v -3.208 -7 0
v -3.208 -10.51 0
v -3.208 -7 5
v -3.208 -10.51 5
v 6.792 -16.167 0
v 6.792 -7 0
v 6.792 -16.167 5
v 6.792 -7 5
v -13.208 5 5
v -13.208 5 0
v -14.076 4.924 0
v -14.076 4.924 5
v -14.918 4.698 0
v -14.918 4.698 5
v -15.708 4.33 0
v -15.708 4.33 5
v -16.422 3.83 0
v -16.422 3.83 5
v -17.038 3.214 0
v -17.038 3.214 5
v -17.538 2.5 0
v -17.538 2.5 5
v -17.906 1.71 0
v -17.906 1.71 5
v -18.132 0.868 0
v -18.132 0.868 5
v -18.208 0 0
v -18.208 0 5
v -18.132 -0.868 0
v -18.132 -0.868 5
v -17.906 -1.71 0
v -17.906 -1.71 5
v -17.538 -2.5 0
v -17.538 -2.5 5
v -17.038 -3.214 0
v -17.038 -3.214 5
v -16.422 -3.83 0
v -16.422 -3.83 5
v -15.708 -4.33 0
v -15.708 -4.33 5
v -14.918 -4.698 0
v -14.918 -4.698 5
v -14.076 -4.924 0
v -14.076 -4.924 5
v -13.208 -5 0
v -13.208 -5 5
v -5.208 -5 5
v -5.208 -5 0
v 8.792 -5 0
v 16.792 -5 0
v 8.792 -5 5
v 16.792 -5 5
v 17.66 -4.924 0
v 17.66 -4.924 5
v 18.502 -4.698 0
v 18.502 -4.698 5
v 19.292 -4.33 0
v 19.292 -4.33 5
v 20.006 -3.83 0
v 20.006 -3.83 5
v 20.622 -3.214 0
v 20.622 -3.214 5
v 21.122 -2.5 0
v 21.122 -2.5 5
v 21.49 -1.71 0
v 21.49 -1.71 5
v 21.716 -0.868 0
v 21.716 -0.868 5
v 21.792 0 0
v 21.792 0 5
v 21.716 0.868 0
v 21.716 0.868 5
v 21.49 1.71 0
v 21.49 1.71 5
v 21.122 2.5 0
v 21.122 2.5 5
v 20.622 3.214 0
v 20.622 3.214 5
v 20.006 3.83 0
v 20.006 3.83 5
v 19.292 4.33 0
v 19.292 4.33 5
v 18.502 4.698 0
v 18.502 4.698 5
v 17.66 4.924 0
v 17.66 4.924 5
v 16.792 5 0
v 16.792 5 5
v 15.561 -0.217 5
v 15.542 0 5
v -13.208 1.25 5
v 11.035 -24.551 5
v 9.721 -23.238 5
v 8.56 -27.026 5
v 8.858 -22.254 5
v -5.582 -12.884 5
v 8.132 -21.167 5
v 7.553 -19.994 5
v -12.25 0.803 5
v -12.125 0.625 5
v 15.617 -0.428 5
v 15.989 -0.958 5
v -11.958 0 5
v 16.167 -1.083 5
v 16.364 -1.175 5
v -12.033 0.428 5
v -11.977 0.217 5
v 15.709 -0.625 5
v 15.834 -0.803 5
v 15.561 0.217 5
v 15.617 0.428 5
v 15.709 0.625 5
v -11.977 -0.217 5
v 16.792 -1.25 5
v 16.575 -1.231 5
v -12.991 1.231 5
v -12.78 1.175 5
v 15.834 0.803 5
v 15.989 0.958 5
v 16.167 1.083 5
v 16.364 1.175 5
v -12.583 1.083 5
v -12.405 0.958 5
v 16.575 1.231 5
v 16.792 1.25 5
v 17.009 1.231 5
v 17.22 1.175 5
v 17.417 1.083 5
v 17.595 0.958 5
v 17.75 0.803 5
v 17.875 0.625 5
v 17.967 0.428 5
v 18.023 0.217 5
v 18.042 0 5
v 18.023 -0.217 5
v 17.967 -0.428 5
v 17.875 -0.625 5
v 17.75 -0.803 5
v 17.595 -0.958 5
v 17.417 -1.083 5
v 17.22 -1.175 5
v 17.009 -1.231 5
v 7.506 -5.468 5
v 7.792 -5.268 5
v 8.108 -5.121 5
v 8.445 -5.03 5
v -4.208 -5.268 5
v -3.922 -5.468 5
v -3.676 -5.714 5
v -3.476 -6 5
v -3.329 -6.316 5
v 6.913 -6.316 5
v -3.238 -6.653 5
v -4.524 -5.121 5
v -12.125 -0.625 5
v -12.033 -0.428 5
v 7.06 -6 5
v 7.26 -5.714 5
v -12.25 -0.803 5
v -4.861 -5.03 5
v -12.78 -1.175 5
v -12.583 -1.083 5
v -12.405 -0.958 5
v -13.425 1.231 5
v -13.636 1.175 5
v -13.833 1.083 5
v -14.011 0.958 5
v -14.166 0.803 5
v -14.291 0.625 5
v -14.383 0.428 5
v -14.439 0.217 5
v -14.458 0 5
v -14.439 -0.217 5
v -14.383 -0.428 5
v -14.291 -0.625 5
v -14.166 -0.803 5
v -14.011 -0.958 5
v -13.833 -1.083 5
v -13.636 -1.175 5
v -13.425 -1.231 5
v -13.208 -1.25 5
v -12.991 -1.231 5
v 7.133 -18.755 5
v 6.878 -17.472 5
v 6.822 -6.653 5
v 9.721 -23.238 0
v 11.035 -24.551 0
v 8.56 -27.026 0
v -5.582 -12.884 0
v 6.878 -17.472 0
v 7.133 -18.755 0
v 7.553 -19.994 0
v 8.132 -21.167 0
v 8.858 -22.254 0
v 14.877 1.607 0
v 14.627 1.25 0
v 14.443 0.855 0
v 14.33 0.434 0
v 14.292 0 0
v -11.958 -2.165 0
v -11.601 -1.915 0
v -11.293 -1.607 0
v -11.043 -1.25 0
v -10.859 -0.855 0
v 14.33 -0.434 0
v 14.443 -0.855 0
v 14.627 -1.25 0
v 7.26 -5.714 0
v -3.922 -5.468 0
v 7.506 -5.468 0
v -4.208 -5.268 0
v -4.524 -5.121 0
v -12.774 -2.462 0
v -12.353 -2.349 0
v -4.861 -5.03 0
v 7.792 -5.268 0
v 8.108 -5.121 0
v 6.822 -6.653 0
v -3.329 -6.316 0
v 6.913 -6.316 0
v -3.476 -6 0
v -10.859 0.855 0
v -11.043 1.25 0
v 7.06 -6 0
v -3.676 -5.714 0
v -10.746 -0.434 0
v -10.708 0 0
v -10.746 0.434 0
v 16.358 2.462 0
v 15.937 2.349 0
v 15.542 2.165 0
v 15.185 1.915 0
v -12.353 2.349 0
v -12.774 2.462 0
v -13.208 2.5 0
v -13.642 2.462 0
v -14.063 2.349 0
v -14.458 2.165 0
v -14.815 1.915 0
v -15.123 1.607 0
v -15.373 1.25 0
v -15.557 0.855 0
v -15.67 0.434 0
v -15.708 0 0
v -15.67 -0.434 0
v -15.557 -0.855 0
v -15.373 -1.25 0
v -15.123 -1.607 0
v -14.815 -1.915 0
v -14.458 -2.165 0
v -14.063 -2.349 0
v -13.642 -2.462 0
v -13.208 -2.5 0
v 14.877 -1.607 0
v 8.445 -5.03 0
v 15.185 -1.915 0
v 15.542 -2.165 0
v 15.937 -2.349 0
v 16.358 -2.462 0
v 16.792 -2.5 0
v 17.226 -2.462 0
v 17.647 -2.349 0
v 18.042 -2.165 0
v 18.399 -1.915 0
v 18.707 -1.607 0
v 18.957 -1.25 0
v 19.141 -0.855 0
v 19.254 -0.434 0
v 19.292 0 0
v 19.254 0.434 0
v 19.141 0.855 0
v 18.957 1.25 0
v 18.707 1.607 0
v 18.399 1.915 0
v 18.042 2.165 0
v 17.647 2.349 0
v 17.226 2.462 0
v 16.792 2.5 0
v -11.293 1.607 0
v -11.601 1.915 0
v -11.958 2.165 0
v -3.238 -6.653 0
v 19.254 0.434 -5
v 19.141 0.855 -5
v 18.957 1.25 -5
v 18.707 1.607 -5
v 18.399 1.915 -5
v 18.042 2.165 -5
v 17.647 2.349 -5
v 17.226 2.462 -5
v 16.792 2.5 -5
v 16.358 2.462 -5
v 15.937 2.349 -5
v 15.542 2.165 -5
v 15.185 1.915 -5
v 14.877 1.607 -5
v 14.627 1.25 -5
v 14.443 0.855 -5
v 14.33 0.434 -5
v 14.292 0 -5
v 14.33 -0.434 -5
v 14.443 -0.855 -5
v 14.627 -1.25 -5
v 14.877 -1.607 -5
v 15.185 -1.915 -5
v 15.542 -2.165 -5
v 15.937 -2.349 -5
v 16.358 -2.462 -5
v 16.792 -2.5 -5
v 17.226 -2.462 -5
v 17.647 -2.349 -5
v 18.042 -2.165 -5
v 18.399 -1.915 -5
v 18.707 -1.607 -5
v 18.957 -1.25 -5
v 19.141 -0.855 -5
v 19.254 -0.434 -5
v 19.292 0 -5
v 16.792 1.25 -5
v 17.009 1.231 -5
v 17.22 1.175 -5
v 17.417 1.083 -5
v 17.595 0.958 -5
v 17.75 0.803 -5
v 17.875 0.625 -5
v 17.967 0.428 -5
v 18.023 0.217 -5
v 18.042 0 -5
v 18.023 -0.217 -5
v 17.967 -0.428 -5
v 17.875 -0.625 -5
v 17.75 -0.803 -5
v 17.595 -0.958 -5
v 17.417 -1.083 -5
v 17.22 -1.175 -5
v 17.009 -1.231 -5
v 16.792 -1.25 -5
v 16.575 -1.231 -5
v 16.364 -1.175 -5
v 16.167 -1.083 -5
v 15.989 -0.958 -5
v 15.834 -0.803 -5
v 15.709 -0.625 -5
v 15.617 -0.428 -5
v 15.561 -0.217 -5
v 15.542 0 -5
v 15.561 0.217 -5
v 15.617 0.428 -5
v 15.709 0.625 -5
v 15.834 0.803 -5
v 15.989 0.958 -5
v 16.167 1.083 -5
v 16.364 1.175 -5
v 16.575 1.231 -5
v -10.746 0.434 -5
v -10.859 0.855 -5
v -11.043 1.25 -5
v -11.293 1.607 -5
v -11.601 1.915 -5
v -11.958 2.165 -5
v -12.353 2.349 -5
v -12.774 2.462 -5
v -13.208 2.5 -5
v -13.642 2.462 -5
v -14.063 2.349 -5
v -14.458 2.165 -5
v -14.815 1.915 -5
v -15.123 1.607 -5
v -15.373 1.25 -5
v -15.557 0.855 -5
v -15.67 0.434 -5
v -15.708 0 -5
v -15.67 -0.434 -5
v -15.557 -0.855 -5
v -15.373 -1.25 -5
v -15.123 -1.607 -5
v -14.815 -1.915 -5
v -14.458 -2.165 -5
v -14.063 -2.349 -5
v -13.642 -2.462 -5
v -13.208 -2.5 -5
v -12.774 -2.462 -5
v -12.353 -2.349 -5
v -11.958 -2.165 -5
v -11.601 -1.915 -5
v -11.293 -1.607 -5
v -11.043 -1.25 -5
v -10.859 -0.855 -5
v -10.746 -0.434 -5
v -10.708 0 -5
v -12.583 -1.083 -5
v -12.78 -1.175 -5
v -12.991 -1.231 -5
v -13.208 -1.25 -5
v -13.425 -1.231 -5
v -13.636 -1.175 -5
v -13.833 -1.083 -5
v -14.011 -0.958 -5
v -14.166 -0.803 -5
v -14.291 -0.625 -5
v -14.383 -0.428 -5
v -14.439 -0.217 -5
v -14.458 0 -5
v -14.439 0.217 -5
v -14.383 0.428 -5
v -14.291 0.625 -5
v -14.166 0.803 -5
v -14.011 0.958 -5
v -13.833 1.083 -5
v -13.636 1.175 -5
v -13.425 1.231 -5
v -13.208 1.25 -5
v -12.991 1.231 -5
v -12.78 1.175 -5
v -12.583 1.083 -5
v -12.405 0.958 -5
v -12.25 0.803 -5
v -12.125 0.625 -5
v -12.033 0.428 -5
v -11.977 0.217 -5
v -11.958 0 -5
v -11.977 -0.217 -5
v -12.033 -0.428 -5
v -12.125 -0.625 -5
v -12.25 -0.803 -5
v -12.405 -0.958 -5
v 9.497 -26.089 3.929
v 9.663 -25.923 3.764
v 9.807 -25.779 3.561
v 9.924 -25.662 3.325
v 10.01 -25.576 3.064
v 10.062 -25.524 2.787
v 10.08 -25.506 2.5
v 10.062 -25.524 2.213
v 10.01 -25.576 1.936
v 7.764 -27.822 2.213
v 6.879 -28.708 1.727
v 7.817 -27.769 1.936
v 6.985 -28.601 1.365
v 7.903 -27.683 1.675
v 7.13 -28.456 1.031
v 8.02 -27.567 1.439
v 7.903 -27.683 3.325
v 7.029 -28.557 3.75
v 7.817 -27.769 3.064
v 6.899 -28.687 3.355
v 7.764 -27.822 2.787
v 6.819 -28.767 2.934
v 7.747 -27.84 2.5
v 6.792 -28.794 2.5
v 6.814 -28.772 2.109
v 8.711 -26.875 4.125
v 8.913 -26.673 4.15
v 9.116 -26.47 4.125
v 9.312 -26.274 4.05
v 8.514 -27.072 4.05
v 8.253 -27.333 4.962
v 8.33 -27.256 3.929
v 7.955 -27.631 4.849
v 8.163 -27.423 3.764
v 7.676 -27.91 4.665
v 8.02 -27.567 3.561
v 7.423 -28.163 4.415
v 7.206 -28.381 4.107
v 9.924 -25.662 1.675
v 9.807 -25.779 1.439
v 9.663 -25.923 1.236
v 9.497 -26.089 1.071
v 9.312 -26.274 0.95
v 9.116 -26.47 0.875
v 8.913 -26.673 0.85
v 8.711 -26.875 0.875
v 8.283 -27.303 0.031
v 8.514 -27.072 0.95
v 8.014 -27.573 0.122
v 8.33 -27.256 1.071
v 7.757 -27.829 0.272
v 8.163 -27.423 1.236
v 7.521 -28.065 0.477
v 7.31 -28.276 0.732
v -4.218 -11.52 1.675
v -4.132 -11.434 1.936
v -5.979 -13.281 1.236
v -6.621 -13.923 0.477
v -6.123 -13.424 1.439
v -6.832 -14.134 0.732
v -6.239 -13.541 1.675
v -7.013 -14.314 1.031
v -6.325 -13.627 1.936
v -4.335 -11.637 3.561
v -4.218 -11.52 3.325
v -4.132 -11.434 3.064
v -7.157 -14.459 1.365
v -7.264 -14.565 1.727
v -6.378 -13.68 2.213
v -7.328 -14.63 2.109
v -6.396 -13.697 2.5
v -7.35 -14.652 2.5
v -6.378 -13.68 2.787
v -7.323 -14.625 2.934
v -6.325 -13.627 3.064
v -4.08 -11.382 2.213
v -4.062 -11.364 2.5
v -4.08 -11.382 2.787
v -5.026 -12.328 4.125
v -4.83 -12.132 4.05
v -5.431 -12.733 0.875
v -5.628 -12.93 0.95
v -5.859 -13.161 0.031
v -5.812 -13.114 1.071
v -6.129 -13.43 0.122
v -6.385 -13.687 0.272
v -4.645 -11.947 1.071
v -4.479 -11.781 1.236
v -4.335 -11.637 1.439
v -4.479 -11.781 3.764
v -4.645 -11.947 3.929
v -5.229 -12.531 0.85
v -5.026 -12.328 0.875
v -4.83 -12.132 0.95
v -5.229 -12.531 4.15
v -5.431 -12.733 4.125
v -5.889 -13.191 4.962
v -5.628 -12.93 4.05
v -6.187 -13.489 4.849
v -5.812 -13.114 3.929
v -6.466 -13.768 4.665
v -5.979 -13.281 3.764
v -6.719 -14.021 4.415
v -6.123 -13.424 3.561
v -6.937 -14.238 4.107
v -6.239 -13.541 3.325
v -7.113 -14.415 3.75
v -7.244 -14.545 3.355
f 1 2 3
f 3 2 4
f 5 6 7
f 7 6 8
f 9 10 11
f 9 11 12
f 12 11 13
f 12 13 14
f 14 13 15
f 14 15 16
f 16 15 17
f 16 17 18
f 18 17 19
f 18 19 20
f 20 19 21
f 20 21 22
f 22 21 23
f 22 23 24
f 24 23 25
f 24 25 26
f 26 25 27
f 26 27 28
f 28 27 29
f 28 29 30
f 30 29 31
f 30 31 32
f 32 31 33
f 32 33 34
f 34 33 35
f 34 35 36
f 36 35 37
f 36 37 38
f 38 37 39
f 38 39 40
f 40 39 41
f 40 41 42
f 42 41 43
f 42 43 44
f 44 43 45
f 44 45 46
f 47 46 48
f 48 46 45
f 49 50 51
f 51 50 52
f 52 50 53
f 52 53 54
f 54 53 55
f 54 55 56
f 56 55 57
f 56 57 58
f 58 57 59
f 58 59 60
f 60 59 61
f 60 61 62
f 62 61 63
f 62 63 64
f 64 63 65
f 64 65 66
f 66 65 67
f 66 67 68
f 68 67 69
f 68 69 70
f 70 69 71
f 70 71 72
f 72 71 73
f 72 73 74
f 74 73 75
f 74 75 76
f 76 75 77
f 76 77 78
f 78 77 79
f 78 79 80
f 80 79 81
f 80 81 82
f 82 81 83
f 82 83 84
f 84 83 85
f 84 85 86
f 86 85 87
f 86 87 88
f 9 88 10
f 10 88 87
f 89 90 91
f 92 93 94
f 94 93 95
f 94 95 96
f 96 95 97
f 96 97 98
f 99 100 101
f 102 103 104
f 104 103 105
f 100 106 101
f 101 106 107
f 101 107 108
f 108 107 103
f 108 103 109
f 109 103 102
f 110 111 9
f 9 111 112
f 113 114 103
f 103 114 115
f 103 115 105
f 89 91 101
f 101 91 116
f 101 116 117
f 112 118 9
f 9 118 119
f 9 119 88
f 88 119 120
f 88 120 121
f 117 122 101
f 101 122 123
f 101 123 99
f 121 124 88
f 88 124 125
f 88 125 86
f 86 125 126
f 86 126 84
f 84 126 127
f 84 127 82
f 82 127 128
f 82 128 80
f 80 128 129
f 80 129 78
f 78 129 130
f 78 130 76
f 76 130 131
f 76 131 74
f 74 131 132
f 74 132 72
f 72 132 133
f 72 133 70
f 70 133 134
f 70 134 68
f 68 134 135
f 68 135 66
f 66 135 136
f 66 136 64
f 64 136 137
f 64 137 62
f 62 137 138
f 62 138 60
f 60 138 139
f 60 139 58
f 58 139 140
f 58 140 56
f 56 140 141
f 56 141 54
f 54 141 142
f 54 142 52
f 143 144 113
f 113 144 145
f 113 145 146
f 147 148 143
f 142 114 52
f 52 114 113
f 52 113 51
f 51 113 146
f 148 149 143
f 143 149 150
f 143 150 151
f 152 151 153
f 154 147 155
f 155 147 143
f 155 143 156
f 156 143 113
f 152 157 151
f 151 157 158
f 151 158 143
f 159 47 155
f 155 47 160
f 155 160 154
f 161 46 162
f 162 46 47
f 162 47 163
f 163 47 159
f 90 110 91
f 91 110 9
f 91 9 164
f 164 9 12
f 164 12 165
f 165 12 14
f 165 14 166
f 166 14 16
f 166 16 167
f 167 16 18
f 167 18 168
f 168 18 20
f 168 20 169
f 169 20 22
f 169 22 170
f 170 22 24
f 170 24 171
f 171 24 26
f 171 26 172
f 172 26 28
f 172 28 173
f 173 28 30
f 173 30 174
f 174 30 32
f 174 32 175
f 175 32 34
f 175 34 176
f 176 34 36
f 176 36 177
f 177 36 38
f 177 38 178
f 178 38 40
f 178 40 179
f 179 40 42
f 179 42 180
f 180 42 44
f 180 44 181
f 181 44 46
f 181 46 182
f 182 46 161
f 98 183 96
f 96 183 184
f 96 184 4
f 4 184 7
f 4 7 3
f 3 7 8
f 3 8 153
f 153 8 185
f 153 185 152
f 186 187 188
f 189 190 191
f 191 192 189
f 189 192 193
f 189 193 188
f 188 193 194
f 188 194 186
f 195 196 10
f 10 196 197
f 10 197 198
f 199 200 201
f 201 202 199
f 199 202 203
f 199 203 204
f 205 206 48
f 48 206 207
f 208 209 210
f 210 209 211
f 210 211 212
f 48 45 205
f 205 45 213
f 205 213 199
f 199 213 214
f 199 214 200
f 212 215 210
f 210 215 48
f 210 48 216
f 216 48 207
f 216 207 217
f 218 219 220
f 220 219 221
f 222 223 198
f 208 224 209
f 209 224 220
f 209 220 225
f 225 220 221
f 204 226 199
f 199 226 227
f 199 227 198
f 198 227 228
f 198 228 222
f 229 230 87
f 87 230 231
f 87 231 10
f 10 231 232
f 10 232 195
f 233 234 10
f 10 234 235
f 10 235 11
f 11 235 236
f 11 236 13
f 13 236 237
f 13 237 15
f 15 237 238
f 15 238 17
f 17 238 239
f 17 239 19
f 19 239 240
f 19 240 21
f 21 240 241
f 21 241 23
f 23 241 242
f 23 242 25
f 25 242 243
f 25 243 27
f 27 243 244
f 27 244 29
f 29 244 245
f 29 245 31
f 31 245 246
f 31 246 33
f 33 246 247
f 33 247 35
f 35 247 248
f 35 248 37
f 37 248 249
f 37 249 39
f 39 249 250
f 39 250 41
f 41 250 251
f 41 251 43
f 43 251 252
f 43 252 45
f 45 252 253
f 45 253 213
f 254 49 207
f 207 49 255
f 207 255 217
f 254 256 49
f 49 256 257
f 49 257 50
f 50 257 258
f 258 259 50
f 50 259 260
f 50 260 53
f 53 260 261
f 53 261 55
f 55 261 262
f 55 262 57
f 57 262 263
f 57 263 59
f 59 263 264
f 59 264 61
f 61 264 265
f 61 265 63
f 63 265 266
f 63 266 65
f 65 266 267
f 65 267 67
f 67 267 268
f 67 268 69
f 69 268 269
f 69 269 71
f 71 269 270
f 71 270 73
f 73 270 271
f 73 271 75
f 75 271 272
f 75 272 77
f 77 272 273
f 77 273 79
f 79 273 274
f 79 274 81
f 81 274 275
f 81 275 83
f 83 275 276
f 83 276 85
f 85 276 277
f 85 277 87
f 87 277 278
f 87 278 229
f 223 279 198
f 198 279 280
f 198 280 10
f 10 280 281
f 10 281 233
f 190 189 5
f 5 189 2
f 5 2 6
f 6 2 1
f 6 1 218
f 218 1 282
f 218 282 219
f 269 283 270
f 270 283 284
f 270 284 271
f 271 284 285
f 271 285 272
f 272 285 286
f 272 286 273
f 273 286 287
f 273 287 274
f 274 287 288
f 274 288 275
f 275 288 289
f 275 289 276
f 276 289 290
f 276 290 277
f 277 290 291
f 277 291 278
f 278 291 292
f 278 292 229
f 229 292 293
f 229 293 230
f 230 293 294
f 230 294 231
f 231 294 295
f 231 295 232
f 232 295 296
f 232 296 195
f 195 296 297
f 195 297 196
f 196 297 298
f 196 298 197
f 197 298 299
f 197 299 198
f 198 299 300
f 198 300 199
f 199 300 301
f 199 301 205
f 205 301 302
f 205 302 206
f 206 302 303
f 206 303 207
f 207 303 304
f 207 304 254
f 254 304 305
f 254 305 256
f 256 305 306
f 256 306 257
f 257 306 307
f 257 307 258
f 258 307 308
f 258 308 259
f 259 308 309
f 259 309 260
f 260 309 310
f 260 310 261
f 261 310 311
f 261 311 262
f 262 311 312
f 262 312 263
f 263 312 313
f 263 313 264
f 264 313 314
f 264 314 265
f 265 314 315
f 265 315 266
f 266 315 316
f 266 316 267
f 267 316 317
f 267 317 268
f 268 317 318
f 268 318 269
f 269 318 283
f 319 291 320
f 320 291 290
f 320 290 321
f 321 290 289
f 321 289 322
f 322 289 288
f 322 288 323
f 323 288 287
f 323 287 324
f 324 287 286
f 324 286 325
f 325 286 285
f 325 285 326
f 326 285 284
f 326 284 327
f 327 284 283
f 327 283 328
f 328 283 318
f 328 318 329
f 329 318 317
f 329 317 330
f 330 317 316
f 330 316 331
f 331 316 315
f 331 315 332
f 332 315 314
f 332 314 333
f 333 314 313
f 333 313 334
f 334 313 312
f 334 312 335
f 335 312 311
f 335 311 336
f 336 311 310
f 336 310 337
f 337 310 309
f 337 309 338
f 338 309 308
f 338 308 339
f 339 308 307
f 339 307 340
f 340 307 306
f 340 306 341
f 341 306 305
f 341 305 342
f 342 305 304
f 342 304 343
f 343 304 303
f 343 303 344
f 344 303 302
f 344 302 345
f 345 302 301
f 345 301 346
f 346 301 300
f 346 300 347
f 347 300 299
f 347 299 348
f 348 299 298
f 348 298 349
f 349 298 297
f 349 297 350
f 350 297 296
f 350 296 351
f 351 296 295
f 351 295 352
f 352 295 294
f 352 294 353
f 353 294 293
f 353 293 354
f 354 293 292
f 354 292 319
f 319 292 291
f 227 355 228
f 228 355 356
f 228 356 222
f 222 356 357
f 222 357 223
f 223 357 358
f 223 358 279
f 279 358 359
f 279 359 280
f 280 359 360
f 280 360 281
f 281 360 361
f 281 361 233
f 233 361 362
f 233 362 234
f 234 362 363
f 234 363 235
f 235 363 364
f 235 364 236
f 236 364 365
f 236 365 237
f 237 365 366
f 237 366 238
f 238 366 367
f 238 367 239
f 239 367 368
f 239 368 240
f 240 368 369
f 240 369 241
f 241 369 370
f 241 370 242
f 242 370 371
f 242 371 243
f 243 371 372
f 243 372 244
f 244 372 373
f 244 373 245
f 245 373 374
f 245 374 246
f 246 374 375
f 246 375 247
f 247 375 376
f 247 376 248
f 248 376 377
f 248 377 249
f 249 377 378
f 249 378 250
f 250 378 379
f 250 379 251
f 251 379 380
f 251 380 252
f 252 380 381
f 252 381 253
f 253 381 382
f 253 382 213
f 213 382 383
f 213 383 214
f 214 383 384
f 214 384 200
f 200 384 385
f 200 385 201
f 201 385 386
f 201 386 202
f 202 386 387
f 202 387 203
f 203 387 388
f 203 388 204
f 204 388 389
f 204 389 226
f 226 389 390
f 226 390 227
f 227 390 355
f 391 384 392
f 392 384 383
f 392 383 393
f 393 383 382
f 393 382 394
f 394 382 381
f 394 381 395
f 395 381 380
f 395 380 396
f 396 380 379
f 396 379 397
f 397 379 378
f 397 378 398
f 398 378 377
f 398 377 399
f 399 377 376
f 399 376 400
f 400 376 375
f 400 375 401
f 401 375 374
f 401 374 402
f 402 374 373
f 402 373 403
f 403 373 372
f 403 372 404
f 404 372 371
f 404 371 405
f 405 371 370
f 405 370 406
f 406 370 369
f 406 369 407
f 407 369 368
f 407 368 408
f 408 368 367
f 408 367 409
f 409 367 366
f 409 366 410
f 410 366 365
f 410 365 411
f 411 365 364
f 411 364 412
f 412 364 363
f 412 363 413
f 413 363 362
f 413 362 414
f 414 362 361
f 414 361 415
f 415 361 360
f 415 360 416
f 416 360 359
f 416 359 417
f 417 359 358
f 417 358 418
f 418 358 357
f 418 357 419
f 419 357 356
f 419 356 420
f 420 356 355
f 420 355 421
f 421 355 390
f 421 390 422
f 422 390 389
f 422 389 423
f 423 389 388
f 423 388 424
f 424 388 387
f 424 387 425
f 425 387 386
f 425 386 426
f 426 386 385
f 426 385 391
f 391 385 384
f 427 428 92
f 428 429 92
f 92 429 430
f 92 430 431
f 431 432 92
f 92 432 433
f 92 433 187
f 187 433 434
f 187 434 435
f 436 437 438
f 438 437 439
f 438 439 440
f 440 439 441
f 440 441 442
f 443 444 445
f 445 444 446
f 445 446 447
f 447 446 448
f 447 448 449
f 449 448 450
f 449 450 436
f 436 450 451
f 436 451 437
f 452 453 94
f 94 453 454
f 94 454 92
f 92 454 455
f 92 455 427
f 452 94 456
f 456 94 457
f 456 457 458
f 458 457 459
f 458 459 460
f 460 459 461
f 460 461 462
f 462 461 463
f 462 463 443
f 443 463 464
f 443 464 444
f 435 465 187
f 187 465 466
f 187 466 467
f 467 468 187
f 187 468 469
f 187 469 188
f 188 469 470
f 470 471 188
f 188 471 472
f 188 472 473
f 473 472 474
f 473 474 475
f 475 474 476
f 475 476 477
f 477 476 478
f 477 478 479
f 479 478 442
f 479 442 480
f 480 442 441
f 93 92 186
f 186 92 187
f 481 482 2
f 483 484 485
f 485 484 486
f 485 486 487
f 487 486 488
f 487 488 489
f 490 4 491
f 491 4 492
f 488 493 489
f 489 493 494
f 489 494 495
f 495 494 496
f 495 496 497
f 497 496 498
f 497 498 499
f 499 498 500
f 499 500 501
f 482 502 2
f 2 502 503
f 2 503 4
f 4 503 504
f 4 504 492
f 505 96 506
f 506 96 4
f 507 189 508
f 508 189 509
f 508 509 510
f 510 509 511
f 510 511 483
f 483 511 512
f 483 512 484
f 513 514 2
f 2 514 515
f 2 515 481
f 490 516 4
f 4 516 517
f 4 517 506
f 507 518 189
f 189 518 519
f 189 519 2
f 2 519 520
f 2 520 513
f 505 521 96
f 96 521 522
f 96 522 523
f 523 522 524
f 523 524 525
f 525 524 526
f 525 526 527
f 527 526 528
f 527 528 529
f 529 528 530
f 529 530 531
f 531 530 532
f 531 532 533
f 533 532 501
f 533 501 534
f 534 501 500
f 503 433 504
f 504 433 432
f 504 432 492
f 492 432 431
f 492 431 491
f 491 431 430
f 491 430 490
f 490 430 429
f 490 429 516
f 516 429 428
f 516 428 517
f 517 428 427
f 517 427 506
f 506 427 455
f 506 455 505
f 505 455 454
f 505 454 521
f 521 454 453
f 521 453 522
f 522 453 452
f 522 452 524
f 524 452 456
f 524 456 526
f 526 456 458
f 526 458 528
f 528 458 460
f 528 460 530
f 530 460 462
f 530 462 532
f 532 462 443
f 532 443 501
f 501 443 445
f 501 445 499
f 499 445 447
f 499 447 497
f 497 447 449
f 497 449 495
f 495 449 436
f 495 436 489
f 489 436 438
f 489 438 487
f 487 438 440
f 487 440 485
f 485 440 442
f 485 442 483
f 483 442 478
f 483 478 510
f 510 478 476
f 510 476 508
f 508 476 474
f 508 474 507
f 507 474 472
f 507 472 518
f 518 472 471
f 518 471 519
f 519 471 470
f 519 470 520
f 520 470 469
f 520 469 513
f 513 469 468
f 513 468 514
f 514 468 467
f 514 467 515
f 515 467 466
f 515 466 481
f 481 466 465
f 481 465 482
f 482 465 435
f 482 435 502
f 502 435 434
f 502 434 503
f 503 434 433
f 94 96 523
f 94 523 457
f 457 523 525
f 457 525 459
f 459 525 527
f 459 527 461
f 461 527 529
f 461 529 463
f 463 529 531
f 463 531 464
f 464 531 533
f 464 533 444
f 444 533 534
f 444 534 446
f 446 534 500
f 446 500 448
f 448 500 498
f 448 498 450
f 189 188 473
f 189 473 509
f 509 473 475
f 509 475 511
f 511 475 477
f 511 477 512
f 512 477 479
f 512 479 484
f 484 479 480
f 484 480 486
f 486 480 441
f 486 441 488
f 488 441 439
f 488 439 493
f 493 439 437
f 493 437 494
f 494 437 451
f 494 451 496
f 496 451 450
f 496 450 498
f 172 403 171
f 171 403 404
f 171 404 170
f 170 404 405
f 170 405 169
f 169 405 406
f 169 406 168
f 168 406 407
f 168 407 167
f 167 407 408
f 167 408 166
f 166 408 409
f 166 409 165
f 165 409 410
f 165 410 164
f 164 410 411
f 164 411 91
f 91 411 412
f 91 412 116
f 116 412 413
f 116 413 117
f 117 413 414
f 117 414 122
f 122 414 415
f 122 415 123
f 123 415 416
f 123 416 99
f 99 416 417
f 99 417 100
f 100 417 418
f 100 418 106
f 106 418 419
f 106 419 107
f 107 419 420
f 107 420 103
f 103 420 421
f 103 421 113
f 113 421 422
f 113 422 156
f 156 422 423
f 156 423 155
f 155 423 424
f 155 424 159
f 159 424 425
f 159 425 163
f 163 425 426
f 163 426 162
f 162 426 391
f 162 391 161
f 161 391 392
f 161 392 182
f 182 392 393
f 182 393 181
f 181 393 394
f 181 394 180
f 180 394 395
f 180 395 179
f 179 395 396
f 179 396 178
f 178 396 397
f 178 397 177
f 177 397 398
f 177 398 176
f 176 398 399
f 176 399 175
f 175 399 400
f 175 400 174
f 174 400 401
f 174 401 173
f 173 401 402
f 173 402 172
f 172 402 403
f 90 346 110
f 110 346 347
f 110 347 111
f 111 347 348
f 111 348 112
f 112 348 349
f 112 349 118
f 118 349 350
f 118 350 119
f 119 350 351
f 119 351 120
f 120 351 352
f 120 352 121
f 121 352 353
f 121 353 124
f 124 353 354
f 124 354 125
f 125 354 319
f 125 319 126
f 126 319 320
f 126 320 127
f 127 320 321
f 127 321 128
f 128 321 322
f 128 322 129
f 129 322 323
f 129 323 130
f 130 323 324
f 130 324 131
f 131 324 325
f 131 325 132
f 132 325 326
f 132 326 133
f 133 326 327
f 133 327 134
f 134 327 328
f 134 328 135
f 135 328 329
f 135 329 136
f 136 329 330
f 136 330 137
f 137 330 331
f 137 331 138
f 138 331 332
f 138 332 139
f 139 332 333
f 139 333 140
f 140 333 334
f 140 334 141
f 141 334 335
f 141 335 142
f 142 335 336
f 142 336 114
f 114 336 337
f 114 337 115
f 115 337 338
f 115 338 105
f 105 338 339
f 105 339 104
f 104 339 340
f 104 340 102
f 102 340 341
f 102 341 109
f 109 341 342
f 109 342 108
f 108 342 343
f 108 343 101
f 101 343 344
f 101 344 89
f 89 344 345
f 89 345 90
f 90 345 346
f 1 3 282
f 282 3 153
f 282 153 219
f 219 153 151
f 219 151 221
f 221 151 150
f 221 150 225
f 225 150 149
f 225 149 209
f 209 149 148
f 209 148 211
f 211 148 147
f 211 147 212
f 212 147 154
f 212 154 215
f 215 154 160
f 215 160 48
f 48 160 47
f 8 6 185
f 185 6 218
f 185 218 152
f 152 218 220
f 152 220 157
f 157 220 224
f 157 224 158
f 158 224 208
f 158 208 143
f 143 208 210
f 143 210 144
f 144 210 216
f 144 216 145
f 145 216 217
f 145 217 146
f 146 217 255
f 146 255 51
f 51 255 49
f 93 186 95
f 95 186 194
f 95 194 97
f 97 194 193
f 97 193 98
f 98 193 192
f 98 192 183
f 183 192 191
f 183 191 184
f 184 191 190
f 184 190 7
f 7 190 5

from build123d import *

# Parameters (mm, degrees)
ESTRUSIONE_ESTRUSIONE3_DEPTH = 5
SCHIZZO3_R                   = 2.5
ESTRUSIONE_ESTRUSIONE4_DEPTH = 5
SCHIZZO7_W                   = 5
SCHIZZO7_H                   = 6
ESTRUSIONE_ESTRUSIONE5_DEPTH = 20
SCHIZZO6_R                   = 1.65
TAGLIO_ESTRUSIONE1_DEPTH     = 20
RACCORDO1_R                  = 2.5
SCHIZZO8_R                   = 1.25
TAGLIO_ESTRUSIONE2_DEPTH     = 38.469880381
RACCORDO2_R                  = 2
RACCORDO3_R                  = 10


with BuildPart() as part:
    # Schizzo1 → Estrusione-Estrusione3 (new body)
    with BuildSketch(Plane.XY):
        with BuildLine():
            Line((-13.207991803, 5), (16.792008197, 5))
            ThreePointArc((16.792008197, 5), (21.792008197, 0), (16.792008197, -5))
            Line((16.792008197, -5), (6.792008197, -5))
            Line((6.792008197, -5), (6.792008197, -18.794102079))
            Line((6.792008197, -18.794102079), (6.792008197, -28.794102079))
            Line((6.792008197, -28.794102079), (-3.207991803, -18.794102079))
            Line((-3.207991803, -18.794102079), (-3.207991803, -5))
            Line((-3.207991803, -5), (-13.207991803, -5))
            ThreePointArc((-13.207991803, -5), (-18.207991803, 0), (-13.207991803, 5))
        make_face()
    extrude(amount=ESTRUSIONE_ESTRUSIONE3_DEPTH)

    # Schizzo3 → Estrusione-Estrusione4 (add)
    with BuildSketch(Plane(origin=(0, 0, 0), x_dir=(-1, 0, 0), z_dir=(0, 0, -1))):
        with Locations(Location((-16.792008197, 0, 0), (0, 0, 180))):
            Circle(SCHIZZO3_R)
        with Locations(Location((13.207991803, 0, 0), (0, 0, 180))):
            Circle(SCHIZZO3_R)
    extrude(amount=ESTRUSIONE_ESTRUSIONE4_DEPTH)

    # Schizzo7 → Estrusione-Estrusione5 (add)
    with BuildSketch(Plane(origin=(17.793055138, -17.793055138, 0), x_dir=(0, 0, -1), z_dir=(-0.7071067811865562, 0.7071067811865389, 0))):
        with Locations((-2.5, 12.557829784)):
            Rectangle(SCHIZZO7_W, SCHIZZO7_H)
    extrude(amount=ESTRUSIONE_ESTRUSIONE5_DEPTH)

    # Schizzo6 → Taglio-Estrusione1 (cut)
    with BuildSketch(Plane(origin=(17.793055138, -17.793055138, 0), x_dir=(0, 0, -1), z_dir=(-0.7071067811865562, 0.7071067811865389, 0))):
        with Locations(Location((-2.5, 12.557829784, 0), (0, 0, 270))):
            Circle(SCHIZZO6_R)
    extrude(amount=TAGLIO_ESTRUSIONE1_DEPTH, mode=Mode.SUBTRACT)

    # Raccordo1
    raccordo1_edges = [part.edges().sort_by_distance(p)[0] for p in [
        (-0.279059615, -21.723034267, 0),
        (-0.279059615, -21.723034267, 5),
    ]]
    fillet(raccordo1_edges, radius=RACCORDO1_R - 0.0001)  # a hair under: the kernel refuses the full size

    # Schizzo8 → Taglio-Estrusione2 (cut, through all)
    with BuildSketch(Plane(origin=(0, 0, -5), x_dir=(-1, 0, 0), z_dir=(0, 0, -1))):
        with Locations((-16.792008197, 0)):
            Circle(SCHIZZO8_R)
        with Locations((13.207991803, 0)):
            Circle(SCHIZZO8_R)
    extrude(amount=-TAGLIO_ESTRUSIONE2_DEPTH, mode=Mode.SUBTRACT)

    # Raccordo2
    raccordo2_edges = [part.edges().sort_by_distance(p)[0] for p in [
        (6.792008197, -5, 2.5),
        (-3.207991803, -5, 2.5),
    ]]
    fillet(raccordo2_edges, radius=RACCORDO2_R)

    # Raccordo3
    raccordo3_edges = [part.edges().sort_by_distance(p)[0] for p in [
        (6.792008197, -20.308820704, 2.5),
    ]]
    fillet(raccordo3_edges, radius=RACCORDO3_R)


solid = part.part
